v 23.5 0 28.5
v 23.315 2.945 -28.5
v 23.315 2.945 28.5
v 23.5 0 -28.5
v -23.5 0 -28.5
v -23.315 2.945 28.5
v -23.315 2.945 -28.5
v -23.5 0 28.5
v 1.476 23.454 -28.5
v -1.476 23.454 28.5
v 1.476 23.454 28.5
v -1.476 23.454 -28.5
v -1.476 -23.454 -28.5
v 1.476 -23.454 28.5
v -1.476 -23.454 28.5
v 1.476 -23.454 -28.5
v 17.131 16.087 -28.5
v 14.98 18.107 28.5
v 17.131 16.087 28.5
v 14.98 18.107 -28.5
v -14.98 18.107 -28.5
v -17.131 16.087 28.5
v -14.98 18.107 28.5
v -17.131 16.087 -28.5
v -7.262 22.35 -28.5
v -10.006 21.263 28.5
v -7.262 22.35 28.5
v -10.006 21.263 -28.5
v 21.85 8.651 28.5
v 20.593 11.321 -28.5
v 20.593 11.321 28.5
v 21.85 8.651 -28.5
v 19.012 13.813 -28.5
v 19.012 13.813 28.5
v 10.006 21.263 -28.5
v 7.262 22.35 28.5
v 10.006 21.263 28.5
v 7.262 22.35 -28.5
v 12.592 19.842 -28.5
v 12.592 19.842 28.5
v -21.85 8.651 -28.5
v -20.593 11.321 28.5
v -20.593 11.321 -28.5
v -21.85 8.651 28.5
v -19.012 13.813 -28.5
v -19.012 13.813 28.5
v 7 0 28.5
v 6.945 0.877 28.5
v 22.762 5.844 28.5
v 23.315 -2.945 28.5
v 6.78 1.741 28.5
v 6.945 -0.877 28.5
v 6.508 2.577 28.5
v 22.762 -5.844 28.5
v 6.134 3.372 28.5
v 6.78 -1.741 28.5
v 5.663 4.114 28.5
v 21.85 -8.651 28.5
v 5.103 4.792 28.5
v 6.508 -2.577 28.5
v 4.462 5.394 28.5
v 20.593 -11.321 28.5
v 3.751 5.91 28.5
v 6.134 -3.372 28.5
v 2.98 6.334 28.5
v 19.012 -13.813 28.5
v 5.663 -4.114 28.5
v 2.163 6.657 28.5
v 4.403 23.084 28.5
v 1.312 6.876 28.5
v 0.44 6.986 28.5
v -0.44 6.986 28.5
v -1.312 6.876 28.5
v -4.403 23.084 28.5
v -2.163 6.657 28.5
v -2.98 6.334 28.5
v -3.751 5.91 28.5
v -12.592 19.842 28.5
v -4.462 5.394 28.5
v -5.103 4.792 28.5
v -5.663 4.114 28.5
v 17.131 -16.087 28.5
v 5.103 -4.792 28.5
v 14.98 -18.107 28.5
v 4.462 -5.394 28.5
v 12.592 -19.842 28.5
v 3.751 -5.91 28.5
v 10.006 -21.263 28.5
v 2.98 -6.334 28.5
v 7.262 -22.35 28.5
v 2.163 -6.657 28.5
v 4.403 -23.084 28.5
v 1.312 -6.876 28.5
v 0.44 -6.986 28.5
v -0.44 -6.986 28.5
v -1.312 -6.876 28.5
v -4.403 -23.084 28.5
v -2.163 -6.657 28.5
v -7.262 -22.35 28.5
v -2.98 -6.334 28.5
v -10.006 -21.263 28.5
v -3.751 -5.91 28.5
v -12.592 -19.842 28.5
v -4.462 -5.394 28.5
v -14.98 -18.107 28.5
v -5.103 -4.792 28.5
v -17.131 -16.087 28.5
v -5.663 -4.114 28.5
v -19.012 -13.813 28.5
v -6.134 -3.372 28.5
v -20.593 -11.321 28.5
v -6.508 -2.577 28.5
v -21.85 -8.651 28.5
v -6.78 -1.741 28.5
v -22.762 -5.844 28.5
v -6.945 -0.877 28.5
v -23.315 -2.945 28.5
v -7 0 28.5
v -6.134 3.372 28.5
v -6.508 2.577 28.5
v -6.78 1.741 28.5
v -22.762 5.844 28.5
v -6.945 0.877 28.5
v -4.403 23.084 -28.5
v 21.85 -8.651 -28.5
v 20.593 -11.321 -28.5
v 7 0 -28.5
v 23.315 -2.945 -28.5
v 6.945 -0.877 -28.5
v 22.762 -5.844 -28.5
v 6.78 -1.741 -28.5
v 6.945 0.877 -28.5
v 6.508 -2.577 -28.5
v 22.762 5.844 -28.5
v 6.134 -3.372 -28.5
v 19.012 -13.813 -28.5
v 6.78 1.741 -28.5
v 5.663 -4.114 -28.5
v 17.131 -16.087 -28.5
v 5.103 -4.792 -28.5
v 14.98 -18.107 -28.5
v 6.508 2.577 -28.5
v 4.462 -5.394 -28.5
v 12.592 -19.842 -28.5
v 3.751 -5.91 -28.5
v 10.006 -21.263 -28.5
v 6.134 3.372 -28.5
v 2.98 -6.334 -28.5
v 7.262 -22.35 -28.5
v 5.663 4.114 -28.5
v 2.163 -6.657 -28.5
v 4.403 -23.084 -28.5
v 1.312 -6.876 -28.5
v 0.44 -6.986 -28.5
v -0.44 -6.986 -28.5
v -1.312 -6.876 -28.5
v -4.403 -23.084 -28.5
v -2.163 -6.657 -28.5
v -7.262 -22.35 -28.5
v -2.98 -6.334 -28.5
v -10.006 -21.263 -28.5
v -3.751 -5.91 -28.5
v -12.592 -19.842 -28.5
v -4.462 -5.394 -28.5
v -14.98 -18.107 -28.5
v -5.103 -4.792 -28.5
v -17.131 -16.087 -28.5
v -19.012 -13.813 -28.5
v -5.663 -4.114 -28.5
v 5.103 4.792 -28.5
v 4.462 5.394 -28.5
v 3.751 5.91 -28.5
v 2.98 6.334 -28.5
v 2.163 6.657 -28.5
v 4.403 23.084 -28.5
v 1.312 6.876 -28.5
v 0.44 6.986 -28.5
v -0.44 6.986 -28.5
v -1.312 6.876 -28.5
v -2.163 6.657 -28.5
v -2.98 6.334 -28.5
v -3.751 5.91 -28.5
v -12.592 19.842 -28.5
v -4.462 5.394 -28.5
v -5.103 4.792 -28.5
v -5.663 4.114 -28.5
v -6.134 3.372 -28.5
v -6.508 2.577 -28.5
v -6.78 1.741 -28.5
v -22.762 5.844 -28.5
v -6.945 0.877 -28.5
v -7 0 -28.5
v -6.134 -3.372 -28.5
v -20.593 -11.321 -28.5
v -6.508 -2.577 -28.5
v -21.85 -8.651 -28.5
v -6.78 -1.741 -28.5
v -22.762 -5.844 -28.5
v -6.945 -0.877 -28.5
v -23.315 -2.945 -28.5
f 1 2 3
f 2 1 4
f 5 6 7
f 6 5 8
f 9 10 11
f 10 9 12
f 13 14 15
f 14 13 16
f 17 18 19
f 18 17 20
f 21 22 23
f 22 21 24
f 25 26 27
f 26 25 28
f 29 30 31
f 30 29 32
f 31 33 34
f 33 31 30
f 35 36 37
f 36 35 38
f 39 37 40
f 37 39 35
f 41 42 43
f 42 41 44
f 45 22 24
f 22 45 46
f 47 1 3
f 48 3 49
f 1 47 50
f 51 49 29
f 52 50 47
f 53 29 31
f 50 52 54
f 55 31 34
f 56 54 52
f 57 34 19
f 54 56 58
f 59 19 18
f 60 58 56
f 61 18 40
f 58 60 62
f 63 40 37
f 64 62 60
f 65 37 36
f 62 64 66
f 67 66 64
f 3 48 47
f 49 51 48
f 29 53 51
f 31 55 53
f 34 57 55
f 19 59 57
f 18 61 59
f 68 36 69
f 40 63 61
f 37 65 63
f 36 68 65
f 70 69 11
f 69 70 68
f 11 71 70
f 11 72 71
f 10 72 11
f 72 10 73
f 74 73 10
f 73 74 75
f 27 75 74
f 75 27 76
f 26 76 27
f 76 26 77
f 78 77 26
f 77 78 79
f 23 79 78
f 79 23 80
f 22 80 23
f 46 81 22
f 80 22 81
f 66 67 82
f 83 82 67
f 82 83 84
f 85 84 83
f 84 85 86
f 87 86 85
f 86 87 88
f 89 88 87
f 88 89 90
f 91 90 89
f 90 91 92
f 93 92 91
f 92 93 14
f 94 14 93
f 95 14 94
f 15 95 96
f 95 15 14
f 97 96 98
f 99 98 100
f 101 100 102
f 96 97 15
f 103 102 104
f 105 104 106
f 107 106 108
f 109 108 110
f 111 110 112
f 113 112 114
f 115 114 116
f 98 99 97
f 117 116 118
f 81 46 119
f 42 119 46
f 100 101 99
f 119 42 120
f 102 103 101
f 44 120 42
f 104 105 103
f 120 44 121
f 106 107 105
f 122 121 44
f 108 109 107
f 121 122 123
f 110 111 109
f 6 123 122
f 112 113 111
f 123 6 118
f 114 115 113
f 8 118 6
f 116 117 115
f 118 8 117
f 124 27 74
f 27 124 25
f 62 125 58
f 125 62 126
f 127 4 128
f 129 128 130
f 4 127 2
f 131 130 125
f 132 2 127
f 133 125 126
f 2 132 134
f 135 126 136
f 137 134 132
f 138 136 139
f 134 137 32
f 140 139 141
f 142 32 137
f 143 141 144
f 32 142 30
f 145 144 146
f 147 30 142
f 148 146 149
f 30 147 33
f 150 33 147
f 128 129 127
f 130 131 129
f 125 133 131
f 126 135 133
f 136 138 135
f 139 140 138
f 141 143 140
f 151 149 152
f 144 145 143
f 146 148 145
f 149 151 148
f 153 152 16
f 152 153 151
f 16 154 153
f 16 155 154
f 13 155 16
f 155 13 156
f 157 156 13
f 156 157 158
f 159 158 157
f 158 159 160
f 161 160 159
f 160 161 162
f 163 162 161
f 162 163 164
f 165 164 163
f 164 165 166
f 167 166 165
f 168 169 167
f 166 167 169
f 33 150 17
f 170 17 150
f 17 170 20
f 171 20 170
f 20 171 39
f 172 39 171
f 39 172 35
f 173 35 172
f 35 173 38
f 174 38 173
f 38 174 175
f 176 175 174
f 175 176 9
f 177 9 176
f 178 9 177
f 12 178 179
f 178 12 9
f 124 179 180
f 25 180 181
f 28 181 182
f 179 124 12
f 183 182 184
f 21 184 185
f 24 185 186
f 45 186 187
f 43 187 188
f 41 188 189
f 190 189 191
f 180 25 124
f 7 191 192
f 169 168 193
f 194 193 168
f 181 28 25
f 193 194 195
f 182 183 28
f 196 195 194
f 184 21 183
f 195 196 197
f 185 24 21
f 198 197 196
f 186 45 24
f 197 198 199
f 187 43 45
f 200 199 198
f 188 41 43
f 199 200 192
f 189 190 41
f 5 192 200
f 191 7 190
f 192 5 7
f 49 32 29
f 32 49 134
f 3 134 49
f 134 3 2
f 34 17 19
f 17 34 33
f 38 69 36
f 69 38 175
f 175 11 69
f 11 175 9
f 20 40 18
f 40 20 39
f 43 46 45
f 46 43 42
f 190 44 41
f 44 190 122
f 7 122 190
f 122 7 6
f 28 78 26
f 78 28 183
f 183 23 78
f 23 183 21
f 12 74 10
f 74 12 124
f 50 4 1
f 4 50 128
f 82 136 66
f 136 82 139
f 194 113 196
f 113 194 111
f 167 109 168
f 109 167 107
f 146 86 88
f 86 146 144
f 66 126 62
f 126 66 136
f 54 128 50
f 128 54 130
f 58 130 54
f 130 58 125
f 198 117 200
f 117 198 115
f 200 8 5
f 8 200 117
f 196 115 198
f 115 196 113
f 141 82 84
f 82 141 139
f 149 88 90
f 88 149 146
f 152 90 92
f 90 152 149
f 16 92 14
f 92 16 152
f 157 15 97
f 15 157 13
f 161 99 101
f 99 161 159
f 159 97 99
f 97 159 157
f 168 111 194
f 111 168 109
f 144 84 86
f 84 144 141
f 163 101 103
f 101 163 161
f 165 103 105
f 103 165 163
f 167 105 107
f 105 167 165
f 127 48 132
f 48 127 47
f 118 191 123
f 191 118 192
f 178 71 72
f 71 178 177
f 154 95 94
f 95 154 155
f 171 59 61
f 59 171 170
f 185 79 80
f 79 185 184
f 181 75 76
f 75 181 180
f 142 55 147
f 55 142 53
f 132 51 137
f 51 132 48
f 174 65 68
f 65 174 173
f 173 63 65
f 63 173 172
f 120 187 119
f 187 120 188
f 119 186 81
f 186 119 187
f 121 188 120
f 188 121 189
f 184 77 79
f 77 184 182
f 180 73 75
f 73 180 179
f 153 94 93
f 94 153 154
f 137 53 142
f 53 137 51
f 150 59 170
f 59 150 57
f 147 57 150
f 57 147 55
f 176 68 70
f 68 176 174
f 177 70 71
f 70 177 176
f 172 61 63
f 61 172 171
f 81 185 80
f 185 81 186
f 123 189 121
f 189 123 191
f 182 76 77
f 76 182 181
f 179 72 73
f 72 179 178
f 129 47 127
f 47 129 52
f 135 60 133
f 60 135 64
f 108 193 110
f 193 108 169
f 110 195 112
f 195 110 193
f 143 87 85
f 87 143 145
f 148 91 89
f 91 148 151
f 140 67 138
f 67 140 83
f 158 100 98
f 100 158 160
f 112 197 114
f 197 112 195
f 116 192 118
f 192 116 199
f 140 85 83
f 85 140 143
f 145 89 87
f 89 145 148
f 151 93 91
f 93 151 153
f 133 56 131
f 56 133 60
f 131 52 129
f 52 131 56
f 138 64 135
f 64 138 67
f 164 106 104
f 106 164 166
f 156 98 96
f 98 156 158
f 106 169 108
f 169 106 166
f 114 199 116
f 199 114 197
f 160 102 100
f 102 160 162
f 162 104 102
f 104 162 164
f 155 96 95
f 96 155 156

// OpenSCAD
$fn = 50;


difference() {
	union() {
		translate(v = [0, 0, -28.5000000000]) {
			cylinder(h = 57, r = 23.5000000000);
		}
	}
	union() {
		translate(v = [0, 0, -100.0000000000]) {
			cylinder(h = 200, r = 7);
		}
	}
}
